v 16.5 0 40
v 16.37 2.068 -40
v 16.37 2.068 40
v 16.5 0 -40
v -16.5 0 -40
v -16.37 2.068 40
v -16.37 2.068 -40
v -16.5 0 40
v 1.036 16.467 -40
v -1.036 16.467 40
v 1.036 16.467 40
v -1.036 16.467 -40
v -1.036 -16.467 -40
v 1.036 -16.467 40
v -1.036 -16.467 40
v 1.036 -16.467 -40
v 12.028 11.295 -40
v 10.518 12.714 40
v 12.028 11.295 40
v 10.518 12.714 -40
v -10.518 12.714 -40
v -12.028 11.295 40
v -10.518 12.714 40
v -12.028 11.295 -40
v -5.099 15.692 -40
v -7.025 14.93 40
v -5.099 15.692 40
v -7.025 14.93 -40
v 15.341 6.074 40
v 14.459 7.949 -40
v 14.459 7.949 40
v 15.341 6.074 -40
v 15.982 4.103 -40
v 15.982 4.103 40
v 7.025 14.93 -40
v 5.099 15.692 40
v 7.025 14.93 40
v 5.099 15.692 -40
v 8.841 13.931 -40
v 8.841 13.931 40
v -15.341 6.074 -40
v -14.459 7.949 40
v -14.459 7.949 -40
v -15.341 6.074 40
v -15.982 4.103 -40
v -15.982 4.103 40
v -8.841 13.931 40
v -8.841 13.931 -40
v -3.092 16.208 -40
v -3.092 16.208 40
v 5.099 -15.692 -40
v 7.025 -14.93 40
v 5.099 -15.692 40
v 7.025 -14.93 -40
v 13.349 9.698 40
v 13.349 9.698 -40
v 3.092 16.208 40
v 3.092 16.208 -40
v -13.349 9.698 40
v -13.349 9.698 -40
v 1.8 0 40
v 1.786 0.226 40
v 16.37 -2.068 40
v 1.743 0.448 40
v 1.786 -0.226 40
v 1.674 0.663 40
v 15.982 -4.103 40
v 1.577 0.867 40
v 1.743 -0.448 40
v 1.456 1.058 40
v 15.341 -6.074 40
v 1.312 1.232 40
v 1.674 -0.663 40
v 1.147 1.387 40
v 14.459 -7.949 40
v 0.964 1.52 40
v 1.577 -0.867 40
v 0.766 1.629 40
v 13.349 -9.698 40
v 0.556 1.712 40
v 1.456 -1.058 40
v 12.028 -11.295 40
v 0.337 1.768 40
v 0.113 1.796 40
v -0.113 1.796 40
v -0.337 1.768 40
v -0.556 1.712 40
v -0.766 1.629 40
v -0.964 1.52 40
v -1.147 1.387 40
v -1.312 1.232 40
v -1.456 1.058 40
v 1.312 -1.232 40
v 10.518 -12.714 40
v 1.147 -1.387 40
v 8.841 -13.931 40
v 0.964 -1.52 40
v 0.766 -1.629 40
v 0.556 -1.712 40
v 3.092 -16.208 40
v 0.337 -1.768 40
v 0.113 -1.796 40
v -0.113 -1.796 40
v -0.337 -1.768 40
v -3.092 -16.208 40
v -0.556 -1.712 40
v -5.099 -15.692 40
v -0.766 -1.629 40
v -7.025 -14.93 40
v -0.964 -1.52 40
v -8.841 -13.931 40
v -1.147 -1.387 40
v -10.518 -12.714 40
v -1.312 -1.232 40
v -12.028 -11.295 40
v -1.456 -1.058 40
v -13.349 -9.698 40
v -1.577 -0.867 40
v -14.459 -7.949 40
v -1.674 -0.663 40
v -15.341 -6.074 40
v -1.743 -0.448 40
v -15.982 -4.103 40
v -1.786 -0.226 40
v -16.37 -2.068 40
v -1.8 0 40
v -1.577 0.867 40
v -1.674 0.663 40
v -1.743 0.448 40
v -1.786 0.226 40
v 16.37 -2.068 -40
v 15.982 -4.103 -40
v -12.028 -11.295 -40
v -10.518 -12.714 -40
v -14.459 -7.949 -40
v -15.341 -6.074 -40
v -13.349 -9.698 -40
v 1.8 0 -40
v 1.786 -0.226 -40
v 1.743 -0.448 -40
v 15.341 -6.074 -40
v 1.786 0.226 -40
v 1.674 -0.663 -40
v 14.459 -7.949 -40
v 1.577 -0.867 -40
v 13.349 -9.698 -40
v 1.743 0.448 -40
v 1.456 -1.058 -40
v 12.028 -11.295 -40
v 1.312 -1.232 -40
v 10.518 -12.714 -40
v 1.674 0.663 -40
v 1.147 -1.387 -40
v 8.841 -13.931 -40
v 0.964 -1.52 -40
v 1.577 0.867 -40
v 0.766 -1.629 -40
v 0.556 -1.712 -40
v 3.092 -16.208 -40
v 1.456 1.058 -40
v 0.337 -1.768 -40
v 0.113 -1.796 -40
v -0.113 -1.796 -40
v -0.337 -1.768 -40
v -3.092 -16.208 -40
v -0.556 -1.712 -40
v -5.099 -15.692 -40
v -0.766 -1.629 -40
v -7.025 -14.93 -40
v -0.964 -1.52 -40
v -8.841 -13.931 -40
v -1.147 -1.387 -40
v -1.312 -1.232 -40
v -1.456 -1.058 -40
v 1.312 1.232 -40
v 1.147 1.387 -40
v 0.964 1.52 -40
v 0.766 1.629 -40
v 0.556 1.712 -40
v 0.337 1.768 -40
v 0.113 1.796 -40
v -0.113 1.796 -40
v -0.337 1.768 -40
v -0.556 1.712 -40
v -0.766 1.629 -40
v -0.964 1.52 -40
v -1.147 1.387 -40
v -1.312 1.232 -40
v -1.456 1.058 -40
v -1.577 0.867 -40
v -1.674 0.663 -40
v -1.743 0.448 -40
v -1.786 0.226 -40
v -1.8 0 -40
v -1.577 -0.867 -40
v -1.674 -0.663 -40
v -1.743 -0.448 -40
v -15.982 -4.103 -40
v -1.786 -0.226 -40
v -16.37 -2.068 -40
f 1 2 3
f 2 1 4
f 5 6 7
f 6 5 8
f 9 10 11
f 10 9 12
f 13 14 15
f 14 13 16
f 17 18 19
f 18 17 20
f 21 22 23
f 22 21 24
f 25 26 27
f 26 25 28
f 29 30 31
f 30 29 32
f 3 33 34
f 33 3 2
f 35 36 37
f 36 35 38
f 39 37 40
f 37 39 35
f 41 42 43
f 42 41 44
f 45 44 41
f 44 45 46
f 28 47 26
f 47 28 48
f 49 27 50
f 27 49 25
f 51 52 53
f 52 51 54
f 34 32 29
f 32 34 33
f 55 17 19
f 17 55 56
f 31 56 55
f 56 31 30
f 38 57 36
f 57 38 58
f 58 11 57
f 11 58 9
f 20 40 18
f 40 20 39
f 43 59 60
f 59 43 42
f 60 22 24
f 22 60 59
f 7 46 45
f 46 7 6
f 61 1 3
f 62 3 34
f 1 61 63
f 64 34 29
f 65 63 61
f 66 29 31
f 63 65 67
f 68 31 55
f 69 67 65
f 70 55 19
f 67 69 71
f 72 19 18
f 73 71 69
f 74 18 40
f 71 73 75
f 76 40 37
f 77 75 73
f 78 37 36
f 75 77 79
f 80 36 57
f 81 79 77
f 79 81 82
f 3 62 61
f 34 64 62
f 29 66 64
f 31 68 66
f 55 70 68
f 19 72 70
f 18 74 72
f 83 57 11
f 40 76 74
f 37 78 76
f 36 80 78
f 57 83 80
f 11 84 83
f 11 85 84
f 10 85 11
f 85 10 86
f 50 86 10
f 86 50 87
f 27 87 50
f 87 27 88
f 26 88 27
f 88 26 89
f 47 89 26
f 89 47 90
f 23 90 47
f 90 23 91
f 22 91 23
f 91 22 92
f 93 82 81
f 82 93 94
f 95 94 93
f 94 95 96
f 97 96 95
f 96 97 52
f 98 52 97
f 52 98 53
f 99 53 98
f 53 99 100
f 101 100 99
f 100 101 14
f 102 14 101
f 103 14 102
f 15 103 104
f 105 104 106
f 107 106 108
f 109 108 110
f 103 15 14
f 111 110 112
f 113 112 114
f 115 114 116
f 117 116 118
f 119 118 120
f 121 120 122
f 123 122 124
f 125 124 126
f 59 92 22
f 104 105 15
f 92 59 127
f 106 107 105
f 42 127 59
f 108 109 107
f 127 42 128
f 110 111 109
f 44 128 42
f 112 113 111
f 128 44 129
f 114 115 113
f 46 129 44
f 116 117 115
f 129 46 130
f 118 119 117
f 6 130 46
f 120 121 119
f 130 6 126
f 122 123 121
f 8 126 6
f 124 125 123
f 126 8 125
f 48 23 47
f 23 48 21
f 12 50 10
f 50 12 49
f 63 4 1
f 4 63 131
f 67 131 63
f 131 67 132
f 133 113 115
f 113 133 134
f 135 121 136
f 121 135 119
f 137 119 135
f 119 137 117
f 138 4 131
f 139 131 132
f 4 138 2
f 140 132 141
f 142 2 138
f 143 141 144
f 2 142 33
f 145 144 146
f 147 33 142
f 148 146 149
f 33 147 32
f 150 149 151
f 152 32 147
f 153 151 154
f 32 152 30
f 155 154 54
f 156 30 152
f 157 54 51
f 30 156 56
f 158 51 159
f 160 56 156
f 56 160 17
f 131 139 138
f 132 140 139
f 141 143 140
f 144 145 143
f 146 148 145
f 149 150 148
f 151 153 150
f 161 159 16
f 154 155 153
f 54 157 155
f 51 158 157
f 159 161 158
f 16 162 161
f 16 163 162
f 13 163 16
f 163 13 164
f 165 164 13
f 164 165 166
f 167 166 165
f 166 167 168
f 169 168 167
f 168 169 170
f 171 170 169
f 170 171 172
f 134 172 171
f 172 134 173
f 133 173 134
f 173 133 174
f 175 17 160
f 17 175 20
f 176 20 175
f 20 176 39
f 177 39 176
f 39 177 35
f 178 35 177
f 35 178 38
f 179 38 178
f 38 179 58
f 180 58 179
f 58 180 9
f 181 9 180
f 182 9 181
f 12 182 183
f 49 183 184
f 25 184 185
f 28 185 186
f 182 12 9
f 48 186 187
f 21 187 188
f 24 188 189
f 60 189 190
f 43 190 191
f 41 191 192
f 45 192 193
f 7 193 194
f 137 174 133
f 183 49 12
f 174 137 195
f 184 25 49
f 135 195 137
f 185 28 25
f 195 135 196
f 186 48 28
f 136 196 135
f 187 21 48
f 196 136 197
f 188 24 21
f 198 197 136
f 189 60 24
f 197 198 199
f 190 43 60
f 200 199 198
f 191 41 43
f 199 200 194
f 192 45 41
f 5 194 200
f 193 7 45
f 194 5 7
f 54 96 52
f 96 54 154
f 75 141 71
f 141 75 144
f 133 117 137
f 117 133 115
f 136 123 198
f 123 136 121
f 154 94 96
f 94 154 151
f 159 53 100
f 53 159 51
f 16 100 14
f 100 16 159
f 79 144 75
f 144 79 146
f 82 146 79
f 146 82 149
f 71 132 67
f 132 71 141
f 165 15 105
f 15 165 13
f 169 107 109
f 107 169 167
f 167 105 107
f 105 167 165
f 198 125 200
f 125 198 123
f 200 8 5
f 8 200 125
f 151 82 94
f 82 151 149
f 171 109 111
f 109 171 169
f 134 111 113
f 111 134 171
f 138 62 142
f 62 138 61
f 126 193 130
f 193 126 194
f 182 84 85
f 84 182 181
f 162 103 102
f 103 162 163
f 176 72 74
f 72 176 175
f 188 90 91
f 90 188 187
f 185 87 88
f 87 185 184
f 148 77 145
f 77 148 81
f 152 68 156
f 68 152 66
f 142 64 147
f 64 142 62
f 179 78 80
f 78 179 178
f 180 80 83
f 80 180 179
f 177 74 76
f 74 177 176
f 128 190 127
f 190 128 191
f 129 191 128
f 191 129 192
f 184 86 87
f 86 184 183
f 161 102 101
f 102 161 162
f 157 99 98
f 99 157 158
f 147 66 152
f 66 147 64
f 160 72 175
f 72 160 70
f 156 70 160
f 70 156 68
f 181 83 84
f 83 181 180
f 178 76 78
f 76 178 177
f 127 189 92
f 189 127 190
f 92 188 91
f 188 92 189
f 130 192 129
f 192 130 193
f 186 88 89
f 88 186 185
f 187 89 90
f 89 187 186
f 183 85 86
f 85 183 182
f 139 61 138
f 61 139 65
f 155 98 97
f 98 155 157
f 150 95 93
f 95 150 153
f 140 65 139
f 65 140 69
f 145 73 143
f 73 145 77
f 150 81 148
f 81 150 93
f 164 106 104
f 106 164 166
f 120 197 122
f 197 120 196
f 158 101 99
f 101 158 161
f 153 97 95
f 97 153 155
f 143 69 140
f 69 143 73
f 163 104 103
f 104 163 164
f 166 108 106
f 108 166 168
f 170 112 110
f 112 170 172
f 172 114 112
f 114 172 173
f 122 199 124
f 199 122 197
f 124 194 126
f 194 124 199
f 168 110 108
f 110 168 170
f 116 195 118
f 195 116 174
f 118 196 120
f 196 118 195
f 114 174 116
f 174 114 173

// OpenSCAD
$fn = 50;


difference() {
	union() {
		translate(v = [0, 0, -40.0000000000]) {
			cylinder(h = 80, r = 16.5000000000);
		}
	}
	union() {
		translate(v = [0, 0, -100.0000000000]) {
			cylinder(h = 200, r = 1.8000000000);
		}
	}
}
